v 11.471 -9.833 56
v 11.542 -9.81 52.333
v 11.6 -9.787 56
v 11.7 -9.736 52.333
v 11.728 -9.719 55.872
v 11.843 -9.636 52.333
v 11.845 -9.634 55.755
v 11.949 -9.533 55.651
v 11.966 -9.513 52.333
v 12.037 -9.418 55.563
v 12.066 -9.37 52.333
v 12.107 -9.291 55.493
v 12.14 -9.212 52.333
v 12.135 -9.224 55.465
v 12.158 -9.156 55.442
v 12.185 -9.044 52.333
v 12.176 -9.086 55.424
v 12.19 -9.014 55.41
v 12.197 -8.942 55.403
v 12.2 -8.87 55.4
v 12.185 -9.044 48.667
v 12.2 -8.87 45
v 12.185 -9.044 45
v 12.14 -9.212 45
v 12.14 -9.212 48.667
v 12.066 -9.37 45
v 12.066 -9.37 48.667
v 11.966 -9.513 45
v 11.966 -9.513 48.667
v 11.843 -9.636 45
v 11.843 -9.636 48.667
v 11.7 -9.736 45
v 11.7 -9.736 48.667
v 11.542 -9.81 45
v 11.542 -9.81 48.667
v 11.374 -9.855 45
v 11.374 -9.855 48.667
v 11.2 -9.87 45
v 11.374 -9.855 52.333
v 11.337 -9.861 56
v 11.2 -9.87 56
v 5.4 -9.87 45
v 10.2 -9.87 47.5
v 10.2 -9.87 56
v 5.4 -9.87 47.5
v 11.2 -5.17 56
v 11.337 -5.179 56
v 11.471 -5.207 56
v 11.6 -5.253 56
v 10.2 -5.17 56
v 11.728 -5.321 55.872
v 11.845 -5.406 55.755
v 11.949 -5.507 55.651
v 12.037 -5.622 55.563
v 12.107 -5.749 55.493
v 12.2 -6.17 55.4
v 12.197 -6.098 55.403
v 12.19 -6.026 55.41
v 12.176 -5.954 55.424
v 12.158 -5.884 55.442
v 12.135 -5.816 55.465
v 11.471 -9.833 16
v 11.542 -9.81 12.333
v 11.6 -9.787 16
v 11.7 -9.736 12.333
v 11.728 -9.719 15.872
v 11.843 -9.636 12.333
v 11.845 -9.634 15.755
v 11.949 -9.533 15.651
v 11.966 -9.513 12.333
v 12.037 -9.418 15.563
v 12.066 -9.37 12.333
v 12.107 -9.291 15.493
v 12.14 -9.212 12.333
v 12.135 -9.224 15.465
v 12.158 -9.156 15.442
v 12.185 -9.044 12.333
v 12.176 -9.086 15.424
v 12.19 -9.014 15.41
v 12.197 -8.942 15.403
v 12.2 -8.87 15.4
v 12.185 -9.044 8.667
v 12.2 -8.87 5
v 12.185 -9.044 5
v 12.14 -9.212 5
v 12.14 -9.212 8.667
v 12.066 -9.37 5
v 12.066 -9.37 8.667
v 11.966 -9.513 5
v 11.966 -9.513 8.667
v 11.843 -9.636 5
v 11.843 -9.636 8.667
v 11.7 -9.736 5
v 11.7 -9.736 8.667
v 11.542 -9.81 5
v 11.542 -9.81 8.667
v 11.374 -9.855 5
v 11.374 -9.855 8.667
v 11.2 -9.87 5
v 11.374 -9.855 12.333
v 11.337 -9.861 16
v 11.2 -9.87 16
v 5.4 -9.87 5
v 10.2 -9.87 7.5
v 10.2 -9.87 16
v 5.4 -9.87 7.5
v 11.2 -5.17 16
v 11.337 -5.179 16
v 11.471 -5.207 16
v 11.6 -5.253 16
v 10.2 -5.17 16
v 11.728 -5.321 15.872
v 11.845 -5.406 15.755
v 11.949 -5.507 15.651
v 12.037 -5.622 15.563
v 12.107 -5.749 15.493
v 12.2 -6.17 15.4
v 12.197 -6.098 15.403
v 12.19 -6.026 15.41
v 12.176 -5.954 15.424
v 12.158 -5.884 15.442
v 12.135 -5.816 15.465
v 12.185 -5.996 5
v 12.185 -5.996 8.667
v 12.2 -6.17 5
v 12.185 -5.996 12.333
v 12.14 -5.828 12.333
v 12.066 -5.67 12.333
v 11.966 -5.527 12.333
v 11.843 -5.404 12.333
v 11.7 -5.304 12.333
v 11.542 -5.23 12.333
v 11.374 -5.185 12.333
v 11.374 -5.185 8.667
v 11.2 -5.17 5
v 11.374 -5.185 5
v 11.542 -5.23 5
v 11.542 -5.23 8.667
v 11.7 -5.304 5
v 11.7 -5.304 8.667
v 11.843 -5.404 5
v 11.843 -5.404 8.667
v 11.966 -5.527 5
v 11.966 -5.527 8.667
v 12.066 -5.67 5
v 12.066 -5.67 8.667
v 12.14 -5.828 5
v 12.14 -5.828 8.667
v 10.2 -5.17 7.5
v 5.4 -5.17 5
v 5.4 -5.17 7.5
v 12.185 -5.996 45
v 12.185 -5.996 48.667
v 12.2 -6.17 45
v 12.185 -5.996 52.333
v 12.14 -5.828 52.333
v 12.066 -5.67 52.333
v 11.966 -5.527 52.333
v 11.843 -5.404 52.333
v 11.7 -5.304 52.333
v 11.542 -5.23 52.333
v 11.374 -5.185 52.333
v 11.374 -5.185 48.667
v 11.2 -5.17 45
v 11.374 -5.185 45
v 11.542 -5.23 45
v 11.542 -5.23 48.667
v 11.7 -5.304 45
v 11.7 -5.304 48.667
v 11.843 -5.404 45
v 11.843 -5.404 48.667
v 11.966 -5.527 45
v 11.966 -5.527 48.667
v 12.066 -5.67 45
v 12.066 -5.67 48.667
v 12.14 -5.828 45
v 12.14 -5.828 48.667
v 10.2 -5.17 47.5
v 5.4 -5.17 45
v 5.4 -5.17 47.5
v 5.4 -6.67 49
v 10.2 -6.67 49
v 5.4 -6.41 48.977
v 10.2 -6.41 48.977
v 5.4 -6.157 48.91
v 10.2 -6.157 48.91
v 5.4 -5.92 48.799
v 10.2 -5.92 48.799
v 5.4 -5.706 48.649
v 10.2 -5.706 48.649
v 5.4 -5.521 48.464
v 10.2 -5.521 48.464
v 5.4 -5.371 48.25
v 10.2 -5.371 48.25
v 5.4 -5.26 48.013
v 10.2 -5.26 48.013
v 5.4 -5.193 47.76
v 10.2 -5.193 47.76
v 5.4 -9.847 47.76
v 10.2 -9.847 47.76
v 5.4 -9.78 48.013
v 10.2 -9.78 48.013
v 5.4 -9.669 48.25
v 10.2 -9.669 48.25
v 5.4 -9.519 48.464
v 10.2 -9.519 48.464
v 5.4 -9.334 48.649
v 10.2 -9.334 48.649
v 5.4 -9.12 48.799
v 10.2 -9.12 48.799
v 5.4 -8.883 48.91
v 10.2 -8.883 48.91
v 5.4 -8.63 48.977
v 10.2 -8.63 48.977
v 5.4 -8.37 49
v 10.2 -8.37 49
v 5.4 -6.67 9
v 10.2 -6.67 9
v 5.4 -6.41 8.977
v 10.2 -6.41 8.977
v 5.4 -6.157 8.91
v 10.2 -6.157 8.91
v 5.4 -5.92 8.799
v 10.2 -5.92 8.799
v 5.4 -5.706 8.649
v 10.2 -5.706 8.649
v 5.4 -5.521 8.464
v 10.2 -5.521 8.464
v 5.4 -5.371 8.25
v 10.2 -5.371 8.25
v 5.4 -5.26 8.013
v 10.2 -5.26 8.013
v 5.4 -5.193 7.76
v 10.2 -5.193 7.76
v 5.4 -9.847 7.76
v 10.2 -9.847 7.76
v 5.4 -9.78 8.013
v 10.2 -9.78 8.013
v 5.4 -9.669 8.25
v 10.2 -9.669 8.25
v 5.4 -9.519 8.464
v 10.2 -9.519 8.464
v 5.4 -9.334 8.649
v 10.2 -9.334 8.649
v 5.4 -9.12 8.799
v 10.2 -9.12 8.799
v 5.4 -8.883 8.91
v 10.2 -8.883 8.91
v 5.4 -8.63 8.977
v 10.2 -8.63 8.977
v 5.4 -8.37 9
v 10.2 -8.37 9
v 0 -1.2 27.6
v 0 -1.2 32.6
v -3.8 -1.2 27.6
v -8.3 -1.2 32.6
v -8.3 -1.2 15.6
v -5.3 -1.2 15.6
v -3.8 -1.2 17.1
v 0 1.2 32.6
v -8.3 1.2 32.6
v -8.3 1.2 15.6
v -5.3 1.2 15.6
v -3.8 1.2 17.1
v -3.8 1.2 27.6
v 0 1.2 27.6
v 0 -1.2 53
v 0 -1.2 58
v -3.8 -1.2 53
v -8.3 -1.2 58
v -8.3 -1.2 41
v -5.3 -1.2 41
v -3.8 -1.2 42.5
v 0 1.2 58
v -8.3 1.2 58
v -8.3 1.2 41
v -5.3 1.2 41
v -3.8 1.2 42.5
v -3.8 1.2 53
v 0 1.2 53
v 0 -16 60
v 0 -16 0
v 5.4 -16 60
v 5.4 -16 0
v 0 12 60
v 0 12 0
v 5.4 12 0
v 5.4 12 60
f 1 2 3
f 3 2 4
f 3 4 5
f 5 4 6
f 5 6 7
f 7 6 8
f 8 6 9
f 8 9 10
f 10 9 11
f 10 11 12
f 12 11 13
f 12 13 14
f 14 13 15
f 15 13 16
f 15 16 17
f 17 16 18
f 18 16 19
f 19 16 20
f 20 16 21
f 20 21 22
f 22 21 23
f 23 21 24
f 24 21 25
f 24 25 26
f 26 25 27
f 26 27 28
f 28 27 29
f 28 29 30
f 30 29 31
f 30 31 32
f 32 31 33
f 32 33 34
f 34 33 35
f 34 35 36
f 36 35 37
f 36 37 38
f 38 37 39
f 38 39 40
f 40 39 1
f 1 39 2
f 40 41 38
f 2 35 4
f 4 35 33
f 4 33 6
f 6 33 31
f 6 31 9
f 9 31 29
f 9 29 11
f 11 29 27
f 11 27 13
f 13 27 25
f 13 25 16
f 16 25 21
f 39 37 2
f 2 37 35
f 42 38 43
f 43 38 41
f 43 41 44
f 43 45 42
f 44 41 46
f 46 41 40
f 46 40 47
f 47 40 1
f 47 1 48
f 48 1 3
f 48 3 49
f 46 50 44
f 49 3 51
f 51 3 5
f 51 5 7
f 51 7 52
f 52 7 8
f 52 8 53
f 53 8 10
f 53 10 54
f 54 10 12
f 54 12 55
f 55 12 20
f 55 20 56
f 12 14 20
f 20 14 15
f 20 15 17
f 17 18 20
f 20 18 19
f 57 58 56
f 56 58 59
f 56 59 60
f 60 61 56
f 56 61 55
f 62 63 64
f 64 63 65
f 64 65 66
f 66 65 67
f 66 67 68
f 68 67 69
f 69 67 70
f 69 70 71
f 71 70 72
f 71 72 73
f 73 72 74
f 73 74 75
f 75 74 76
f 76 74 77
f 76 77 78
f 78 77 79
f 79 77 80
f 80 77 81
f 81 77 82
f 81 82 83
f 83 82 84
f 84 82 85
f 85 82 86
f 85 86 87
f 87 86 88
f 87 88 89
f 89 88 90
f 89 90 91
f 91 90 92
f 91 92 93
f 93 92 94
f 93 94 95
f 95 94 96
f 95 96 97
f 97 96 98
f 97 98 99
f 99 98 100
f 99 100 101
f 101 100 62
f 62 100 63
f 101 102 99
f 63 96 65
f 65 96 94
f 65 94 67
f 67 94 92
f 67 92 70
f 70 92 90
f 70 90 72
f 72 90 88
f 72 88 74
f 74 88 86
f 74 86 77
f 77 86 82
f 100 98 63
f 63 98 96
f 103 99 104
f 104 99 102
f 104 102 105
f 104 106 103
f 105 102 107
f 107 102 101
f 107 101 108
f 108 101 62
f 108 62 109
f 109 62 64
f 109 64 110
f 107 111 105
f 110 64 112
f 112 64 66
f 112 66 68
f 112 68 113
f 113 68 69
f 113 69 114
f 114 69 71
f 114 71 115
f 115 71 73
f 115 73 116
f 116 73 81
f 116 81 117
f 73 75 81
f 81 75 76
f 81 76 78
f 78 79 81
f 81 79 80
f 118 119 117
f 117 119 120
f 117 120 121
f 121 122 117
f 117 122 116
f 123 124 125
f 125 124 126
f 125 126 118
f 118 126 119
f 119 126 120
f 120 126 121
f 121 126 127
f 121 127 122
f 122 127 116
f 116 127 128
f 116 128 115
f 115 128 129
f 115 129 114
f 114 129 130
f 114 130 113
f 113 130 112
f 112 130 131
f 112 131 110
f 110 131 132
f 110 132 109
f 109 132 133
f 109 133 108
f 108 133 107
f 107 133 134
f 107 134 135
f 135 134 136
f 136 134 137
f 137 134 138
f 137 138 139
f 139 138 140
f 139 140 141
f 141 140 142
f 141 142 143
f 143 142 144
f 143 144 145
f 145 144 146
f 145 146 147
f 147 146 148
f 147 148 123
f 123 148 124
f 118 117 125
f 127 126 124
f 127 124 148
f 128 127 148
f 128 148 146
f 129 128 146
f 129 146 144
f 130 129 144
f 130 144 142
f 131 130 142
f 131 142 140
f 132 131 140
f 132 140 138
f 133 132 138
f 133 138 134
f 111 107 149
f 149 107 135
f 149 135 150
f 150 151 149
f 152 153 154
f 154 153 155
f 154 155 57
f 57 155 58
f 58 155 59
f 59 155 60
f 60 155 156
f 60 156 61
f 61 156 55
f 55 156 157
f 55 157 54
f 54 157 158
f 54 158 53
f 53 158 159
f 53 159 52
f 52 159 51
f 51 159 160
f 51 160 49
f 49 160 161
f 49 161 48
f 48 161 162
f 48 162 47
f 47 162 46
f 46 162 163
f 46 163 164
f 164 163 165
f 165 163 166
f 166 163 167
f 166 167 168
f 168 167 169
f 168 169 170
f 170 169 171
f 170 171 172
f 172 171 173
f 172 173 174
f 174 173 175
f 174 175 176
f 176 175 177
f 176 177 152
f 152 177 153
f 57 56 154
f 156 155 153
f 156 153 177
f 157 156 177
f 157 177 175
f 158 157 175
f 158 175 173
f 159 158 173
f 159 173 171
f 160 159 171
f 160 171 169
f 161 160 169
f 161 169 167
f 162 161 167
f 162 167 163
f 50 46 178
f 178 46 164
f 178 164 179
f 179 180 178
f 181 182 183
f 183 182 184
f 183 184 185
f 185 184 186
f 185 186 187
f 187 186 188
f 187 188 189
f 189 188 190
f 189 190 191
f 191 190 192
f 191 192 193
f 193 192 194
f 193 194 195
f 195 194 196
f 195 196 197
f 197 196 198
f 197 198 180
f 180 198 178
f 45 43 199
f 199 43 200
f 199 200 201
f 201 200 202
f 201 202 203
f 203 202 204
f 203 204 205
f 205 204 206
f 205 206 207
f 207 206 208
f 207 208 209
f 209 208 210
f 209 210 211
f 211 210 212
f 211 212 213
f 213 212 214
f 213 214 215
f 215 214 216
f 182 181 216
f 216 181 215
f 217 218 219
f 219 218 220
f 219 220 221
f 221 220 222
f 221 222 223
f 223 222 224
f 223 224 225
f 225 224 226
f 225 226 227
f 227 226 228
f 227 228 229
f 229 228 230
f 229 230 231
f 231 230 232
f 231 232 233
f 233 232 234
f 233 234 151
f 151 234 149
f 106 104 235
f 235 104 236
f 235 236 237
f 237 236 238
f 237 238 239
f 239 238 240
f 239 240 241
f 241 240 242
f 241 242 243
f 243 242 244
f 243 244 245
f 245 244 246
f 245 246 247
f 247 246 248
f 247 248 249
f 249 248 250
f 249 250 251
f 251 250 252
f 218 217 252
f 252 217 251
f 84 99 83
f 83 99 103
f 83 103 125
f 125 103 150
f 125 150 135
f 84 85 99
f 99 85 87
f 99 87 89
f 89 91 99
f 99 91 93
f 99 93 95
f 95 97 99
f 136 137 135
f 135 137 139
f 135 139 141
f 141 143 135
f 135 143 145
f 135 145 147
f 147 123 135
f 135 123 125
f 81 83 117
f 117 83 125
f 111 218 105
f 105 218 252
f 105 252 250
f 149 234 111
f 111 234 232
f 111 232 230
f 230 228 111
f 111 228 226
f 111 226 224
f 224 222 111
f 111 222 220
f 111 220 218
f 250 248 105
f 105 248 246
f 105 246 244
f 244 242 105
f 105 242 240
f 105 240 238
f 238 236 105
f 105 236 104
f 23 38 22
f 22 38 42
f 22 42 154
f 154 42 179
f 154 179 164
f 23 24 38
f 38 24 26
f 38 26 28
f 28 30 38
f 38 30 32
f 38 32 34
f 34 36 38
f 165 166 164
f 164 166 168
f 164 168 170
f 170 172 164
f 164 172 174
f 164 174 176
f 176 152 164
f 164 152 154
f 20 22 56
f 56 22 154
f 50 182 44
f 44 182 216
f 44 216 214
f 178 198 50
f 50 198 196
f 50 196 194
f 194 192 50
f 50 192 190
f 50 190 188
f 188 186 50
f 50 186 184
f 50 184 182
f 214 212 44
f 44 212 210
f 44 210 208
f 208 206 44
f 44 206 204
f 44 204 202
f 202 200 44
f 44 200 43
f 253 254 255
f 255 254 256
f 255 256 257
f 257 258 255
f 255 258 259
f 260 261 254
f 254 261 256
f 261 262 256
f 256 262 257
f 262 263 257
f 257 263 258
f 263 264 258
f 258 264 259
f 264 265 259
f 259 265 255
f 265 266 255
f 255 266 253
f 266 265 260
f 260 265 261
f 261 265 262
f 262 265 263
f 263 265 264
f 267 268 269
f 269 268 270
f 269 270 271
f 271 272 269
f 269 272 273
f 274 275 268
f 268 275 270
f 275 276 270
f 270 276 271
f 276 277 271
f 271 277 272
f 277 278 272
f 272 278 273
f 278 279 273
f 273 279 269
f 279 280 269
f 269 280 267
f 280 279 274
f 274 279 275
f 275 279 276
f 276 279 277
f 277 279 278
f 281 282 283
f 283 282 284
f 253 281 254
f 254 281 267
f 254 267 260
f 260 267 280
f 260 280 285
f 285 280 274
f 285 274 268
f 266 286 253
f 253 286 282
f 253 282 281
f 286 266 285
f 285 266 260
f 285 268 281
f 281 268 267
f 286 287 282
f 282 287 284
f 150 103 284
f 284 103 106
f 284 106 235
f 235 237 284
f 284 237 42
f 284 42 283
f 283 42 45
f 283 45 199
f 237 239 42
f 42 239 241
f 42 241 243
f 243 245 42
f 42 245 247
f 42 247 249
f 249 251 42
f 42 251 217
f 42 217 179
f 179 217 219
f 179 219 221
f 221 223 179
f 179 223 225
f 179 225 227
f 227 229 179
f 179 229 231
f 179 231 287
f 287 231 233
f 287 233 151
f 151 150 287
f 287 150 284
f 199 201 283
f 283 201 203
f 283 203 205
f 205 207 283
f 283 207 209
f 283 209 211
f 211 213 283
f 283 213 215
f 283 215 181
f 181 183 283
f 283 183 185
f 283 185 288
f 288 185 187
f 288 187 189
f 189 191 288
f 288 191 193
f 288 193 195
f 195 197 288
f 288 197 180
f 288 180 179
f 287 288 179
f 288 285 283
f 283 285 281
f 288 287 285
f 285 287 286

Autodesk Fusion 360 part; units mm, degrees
sketch "Plate" plane through (0, 0, 0) normal (0, 1, 0) x (1, 0, 0)
  line L0 (0, 0) -> (5.4, 0)
  line L1 (5.4, 0) -> (5.4, -60)
  line L2 (5.4, -60) -> (0, -60)
  line L3 (0, -60) -> (0, 0)
  dimension "d242" = 5.4
  dimension "d243" = 60
extrude "Plate (1)" add sketch "Plate" along normal mid plane 28 from surface at -2
sketch "Hook profile" plane through (0, 0, 0) normal (0, 1, 0) x (1, 0, 0)
  line L0 (0, -58) -> (-8.3, -58)
  line L1 (-8.3, -58) -> (-8.3, -41)
  line L2 (-8.3, -41) -> (-5.3, -41)
  line L3 (-5.3, -41) -> (-3.8, -42.5)
  line L4 (-3.8, -42.5) -> (-3.8, -53)
  line L5 (-3.8, -53) -> (0, -53)
  line L6 (0, -53) -> (0, -58)
  dimension "d247" = 58
  dimension "d248" = 8.3
  dimension "d249" = 3.8
  dimension "d250" = 5
  dimension "d251" = 10.5
  dimension "d252" = 1.5
  dimension "d253" = 1.5
extrude "Hook profile (1)" add sketch "Hook profile" along normal mid plane 2.4
pattern_linear "Hook rows" count 2 spacing 25.4 along (0, 0, -1) count 3 spacing 0 along (0, 0, 1) of "Hook profile (1)"
sketch "Peg profile" plane through (0, 0, 0) normal (0, 1, 0) x (1, 0, 0)
  line L0 (5.4, -45) -> (12.2, -45)
  line L1 (12.2, -45) -> (12.2, -55.4)
  line L2 (12.2, -55.4) -> (11.6, -56)
  line L3 (11.6, -56) -> (10.2, -56)
  line L4 (10.2, -56) -> (10.2, -49)
  line L5 (10.2, -49) -> (5.4, -49)
  line L6 (5.4, -49) -> (5.4, -45)
  dimension "d260" = 5.4
  dimension "d261" = 45
  dimension "d262" = 12.2
  dimension "d263" = 55.4
  dimension "d264" = 11.6
  dimension "d265" = 56
  dimension "d266" = 10.2
  dimension "d267" = 49
extrude "Peg profile (1)" add sketch "Peg profile" along normal mid plane 4.7 from surface at -7.52
pattern_linear "Peg rows" count 2 spacing 40 along (0, 0, -1) count 3 spacing 0 along (0, 0, 1) of "Peg profile (1)"
fillet "Peg bearing fillets" radius 1.5 4 edges at (7.8, -9.87, 9) (7.8, -5.17, 9) (7.8, -9.87, 49) (7.8, -5.17, 49)
fillet "Prong front fillets" radius 1 4 edges at (12.2, -5.17, 50.2) (12.2, -5.17, 10.2) (12.2, -9.87, 10.2) (12.2, -9.87, 50.2)
equation "bracketWidth = 24.0 mm" comment "bracket width across the upright"
equation "plateThickness = 5.4 mm" comment "board rear face sits on this"
equation "plateHeight = 60.0 mm" comment "plate height"
equation "slotWidth = 3.2 mm" comment "measured upright slot width"
equation "slotPitchVertical = 25.4 mm" comment "1 inch, measured"
equation "faceMetalThickness = 2.0 mm" comment "upright face metal"
equation "hookTabWidth = slotWidth - 0.8 mm" comment "blade width through the slot"
equation "hookThroat = faceMetalThickness + 1.8 mm" comment "gap behind the plate"
equation "hookNeckHeight = 5.0 mm" comment "bears on the slot bottom edge"
equation "hookLipThickness = 4.5 mm" comment "lip behind the upright face"
equation "hookLipDrop = 12.0 mm" comment "engagement below the neck"
equation "hookLipChamfer = 1.5 mm" comment "lead-in past slot burrs"
equation "topHookNeckTop = 58.0 mm" comment "top hook row"
equation "hookRows = 2" comment "hook rows (pattern count)"
equation "boardThickness = 4.6 mm" comment "SKADIS panel thickness"
equation "boardSlotWidth = 5.0 mm" comment "SKADIS slot width"
equation "boardSlotHeight = 15.0 mm" comment "SKADIS slot height"
equation "boardPitch = 40.0 mm" comment "SKADIS grid pitch"
equation "pegWidth = boardSlotWidth - pegClearance" comment "peg width in the slot"
equation "pegRootLength = boardThickness + pegRootProud" comment "root through the board"
equation "pegRootHeight = 4.0 mm" comment "slot top edge bears on this"
equation "pegProngThickness = 2.0 mm" comment "prong in front of board"
equation "pegTotalHeight = boardSlotHeight - 4 mm" comment "prong rise above the root, and the lift needed to release"
equation "pegProngChamfer = 0.6 mm" comment "lead-in on the prong top"
equation "pegBearingFillet = 1.5 mm" comment "round on the root top edges the board bears on"
equation "topPegRootZ = 45.0 mm" comment "top peg root, above the plate foot"
equation "pegRows = 2" comment "pegs per bracket (pattern count)"
equation "pegOffsetY = -7.52 mm" comment "offset onto the board's 40 mm grid"
equation "plateInboardExtension = 4.0 mm" comment "extra plate toward the desk centre, where the peg crowds"
equation "pegClearance = 0.3 mm" comment "sliding fit across the slot"
equation "pegRootProud = 0.2 mm" comment "root past the board's front face"
equation "pegProngFrontFillet = 1.0 mm" comment "round on the prong's front corners, where fingers meet it"
equation "d242 = plateThickness"
equation "d243 = plateHeight"
equation "d244 = -plateInboardExtension / 2"
equation "d245 = bracketWidth + plateInboardExtension"
equation "d247 = topHookNeckTop"
equation "d248 = hookThroat + hookLipThickness"
equation "d249 = hookThroat"
equation "d250 = hookNeckHeight"
equation "d251 = hookLipDrop - hookLipChamfer"
equation "d252 = hookLipChamfer"
equation "d253 = hookLipChamfer"
equation "d254 = hookTabWidth"
equation "d256 = hookRows"
equation "d258 = -slotPitchVertical"
equation "d260 = plateThickness"
equation "d261 = topPegRootZ"
equation "d262 = plateThickness + pegRootLength + pegProngThickness"
equation "d263 = topPegRootZ + pegTotalHeight - pegProngChamfer"
equation "d264 = plateThickness + pegRootLength + pegProngThickness - pegProngChamfer"
equation "d265 = topPegRootZ + pegTotalHeight"
equation "d266 = plateThickness + pegRootLength"
equation "d267 = topPegRootZ + pegRootHeight"
equation "d268 = pegOffsetY"
equation "d269 = pegWidth"
equation "d271 = pegRows"
equation "d273 = -boardPitch"
equation "d276 = pegBearingFillet"
equation "d278 = pegProngFrontFillet"
